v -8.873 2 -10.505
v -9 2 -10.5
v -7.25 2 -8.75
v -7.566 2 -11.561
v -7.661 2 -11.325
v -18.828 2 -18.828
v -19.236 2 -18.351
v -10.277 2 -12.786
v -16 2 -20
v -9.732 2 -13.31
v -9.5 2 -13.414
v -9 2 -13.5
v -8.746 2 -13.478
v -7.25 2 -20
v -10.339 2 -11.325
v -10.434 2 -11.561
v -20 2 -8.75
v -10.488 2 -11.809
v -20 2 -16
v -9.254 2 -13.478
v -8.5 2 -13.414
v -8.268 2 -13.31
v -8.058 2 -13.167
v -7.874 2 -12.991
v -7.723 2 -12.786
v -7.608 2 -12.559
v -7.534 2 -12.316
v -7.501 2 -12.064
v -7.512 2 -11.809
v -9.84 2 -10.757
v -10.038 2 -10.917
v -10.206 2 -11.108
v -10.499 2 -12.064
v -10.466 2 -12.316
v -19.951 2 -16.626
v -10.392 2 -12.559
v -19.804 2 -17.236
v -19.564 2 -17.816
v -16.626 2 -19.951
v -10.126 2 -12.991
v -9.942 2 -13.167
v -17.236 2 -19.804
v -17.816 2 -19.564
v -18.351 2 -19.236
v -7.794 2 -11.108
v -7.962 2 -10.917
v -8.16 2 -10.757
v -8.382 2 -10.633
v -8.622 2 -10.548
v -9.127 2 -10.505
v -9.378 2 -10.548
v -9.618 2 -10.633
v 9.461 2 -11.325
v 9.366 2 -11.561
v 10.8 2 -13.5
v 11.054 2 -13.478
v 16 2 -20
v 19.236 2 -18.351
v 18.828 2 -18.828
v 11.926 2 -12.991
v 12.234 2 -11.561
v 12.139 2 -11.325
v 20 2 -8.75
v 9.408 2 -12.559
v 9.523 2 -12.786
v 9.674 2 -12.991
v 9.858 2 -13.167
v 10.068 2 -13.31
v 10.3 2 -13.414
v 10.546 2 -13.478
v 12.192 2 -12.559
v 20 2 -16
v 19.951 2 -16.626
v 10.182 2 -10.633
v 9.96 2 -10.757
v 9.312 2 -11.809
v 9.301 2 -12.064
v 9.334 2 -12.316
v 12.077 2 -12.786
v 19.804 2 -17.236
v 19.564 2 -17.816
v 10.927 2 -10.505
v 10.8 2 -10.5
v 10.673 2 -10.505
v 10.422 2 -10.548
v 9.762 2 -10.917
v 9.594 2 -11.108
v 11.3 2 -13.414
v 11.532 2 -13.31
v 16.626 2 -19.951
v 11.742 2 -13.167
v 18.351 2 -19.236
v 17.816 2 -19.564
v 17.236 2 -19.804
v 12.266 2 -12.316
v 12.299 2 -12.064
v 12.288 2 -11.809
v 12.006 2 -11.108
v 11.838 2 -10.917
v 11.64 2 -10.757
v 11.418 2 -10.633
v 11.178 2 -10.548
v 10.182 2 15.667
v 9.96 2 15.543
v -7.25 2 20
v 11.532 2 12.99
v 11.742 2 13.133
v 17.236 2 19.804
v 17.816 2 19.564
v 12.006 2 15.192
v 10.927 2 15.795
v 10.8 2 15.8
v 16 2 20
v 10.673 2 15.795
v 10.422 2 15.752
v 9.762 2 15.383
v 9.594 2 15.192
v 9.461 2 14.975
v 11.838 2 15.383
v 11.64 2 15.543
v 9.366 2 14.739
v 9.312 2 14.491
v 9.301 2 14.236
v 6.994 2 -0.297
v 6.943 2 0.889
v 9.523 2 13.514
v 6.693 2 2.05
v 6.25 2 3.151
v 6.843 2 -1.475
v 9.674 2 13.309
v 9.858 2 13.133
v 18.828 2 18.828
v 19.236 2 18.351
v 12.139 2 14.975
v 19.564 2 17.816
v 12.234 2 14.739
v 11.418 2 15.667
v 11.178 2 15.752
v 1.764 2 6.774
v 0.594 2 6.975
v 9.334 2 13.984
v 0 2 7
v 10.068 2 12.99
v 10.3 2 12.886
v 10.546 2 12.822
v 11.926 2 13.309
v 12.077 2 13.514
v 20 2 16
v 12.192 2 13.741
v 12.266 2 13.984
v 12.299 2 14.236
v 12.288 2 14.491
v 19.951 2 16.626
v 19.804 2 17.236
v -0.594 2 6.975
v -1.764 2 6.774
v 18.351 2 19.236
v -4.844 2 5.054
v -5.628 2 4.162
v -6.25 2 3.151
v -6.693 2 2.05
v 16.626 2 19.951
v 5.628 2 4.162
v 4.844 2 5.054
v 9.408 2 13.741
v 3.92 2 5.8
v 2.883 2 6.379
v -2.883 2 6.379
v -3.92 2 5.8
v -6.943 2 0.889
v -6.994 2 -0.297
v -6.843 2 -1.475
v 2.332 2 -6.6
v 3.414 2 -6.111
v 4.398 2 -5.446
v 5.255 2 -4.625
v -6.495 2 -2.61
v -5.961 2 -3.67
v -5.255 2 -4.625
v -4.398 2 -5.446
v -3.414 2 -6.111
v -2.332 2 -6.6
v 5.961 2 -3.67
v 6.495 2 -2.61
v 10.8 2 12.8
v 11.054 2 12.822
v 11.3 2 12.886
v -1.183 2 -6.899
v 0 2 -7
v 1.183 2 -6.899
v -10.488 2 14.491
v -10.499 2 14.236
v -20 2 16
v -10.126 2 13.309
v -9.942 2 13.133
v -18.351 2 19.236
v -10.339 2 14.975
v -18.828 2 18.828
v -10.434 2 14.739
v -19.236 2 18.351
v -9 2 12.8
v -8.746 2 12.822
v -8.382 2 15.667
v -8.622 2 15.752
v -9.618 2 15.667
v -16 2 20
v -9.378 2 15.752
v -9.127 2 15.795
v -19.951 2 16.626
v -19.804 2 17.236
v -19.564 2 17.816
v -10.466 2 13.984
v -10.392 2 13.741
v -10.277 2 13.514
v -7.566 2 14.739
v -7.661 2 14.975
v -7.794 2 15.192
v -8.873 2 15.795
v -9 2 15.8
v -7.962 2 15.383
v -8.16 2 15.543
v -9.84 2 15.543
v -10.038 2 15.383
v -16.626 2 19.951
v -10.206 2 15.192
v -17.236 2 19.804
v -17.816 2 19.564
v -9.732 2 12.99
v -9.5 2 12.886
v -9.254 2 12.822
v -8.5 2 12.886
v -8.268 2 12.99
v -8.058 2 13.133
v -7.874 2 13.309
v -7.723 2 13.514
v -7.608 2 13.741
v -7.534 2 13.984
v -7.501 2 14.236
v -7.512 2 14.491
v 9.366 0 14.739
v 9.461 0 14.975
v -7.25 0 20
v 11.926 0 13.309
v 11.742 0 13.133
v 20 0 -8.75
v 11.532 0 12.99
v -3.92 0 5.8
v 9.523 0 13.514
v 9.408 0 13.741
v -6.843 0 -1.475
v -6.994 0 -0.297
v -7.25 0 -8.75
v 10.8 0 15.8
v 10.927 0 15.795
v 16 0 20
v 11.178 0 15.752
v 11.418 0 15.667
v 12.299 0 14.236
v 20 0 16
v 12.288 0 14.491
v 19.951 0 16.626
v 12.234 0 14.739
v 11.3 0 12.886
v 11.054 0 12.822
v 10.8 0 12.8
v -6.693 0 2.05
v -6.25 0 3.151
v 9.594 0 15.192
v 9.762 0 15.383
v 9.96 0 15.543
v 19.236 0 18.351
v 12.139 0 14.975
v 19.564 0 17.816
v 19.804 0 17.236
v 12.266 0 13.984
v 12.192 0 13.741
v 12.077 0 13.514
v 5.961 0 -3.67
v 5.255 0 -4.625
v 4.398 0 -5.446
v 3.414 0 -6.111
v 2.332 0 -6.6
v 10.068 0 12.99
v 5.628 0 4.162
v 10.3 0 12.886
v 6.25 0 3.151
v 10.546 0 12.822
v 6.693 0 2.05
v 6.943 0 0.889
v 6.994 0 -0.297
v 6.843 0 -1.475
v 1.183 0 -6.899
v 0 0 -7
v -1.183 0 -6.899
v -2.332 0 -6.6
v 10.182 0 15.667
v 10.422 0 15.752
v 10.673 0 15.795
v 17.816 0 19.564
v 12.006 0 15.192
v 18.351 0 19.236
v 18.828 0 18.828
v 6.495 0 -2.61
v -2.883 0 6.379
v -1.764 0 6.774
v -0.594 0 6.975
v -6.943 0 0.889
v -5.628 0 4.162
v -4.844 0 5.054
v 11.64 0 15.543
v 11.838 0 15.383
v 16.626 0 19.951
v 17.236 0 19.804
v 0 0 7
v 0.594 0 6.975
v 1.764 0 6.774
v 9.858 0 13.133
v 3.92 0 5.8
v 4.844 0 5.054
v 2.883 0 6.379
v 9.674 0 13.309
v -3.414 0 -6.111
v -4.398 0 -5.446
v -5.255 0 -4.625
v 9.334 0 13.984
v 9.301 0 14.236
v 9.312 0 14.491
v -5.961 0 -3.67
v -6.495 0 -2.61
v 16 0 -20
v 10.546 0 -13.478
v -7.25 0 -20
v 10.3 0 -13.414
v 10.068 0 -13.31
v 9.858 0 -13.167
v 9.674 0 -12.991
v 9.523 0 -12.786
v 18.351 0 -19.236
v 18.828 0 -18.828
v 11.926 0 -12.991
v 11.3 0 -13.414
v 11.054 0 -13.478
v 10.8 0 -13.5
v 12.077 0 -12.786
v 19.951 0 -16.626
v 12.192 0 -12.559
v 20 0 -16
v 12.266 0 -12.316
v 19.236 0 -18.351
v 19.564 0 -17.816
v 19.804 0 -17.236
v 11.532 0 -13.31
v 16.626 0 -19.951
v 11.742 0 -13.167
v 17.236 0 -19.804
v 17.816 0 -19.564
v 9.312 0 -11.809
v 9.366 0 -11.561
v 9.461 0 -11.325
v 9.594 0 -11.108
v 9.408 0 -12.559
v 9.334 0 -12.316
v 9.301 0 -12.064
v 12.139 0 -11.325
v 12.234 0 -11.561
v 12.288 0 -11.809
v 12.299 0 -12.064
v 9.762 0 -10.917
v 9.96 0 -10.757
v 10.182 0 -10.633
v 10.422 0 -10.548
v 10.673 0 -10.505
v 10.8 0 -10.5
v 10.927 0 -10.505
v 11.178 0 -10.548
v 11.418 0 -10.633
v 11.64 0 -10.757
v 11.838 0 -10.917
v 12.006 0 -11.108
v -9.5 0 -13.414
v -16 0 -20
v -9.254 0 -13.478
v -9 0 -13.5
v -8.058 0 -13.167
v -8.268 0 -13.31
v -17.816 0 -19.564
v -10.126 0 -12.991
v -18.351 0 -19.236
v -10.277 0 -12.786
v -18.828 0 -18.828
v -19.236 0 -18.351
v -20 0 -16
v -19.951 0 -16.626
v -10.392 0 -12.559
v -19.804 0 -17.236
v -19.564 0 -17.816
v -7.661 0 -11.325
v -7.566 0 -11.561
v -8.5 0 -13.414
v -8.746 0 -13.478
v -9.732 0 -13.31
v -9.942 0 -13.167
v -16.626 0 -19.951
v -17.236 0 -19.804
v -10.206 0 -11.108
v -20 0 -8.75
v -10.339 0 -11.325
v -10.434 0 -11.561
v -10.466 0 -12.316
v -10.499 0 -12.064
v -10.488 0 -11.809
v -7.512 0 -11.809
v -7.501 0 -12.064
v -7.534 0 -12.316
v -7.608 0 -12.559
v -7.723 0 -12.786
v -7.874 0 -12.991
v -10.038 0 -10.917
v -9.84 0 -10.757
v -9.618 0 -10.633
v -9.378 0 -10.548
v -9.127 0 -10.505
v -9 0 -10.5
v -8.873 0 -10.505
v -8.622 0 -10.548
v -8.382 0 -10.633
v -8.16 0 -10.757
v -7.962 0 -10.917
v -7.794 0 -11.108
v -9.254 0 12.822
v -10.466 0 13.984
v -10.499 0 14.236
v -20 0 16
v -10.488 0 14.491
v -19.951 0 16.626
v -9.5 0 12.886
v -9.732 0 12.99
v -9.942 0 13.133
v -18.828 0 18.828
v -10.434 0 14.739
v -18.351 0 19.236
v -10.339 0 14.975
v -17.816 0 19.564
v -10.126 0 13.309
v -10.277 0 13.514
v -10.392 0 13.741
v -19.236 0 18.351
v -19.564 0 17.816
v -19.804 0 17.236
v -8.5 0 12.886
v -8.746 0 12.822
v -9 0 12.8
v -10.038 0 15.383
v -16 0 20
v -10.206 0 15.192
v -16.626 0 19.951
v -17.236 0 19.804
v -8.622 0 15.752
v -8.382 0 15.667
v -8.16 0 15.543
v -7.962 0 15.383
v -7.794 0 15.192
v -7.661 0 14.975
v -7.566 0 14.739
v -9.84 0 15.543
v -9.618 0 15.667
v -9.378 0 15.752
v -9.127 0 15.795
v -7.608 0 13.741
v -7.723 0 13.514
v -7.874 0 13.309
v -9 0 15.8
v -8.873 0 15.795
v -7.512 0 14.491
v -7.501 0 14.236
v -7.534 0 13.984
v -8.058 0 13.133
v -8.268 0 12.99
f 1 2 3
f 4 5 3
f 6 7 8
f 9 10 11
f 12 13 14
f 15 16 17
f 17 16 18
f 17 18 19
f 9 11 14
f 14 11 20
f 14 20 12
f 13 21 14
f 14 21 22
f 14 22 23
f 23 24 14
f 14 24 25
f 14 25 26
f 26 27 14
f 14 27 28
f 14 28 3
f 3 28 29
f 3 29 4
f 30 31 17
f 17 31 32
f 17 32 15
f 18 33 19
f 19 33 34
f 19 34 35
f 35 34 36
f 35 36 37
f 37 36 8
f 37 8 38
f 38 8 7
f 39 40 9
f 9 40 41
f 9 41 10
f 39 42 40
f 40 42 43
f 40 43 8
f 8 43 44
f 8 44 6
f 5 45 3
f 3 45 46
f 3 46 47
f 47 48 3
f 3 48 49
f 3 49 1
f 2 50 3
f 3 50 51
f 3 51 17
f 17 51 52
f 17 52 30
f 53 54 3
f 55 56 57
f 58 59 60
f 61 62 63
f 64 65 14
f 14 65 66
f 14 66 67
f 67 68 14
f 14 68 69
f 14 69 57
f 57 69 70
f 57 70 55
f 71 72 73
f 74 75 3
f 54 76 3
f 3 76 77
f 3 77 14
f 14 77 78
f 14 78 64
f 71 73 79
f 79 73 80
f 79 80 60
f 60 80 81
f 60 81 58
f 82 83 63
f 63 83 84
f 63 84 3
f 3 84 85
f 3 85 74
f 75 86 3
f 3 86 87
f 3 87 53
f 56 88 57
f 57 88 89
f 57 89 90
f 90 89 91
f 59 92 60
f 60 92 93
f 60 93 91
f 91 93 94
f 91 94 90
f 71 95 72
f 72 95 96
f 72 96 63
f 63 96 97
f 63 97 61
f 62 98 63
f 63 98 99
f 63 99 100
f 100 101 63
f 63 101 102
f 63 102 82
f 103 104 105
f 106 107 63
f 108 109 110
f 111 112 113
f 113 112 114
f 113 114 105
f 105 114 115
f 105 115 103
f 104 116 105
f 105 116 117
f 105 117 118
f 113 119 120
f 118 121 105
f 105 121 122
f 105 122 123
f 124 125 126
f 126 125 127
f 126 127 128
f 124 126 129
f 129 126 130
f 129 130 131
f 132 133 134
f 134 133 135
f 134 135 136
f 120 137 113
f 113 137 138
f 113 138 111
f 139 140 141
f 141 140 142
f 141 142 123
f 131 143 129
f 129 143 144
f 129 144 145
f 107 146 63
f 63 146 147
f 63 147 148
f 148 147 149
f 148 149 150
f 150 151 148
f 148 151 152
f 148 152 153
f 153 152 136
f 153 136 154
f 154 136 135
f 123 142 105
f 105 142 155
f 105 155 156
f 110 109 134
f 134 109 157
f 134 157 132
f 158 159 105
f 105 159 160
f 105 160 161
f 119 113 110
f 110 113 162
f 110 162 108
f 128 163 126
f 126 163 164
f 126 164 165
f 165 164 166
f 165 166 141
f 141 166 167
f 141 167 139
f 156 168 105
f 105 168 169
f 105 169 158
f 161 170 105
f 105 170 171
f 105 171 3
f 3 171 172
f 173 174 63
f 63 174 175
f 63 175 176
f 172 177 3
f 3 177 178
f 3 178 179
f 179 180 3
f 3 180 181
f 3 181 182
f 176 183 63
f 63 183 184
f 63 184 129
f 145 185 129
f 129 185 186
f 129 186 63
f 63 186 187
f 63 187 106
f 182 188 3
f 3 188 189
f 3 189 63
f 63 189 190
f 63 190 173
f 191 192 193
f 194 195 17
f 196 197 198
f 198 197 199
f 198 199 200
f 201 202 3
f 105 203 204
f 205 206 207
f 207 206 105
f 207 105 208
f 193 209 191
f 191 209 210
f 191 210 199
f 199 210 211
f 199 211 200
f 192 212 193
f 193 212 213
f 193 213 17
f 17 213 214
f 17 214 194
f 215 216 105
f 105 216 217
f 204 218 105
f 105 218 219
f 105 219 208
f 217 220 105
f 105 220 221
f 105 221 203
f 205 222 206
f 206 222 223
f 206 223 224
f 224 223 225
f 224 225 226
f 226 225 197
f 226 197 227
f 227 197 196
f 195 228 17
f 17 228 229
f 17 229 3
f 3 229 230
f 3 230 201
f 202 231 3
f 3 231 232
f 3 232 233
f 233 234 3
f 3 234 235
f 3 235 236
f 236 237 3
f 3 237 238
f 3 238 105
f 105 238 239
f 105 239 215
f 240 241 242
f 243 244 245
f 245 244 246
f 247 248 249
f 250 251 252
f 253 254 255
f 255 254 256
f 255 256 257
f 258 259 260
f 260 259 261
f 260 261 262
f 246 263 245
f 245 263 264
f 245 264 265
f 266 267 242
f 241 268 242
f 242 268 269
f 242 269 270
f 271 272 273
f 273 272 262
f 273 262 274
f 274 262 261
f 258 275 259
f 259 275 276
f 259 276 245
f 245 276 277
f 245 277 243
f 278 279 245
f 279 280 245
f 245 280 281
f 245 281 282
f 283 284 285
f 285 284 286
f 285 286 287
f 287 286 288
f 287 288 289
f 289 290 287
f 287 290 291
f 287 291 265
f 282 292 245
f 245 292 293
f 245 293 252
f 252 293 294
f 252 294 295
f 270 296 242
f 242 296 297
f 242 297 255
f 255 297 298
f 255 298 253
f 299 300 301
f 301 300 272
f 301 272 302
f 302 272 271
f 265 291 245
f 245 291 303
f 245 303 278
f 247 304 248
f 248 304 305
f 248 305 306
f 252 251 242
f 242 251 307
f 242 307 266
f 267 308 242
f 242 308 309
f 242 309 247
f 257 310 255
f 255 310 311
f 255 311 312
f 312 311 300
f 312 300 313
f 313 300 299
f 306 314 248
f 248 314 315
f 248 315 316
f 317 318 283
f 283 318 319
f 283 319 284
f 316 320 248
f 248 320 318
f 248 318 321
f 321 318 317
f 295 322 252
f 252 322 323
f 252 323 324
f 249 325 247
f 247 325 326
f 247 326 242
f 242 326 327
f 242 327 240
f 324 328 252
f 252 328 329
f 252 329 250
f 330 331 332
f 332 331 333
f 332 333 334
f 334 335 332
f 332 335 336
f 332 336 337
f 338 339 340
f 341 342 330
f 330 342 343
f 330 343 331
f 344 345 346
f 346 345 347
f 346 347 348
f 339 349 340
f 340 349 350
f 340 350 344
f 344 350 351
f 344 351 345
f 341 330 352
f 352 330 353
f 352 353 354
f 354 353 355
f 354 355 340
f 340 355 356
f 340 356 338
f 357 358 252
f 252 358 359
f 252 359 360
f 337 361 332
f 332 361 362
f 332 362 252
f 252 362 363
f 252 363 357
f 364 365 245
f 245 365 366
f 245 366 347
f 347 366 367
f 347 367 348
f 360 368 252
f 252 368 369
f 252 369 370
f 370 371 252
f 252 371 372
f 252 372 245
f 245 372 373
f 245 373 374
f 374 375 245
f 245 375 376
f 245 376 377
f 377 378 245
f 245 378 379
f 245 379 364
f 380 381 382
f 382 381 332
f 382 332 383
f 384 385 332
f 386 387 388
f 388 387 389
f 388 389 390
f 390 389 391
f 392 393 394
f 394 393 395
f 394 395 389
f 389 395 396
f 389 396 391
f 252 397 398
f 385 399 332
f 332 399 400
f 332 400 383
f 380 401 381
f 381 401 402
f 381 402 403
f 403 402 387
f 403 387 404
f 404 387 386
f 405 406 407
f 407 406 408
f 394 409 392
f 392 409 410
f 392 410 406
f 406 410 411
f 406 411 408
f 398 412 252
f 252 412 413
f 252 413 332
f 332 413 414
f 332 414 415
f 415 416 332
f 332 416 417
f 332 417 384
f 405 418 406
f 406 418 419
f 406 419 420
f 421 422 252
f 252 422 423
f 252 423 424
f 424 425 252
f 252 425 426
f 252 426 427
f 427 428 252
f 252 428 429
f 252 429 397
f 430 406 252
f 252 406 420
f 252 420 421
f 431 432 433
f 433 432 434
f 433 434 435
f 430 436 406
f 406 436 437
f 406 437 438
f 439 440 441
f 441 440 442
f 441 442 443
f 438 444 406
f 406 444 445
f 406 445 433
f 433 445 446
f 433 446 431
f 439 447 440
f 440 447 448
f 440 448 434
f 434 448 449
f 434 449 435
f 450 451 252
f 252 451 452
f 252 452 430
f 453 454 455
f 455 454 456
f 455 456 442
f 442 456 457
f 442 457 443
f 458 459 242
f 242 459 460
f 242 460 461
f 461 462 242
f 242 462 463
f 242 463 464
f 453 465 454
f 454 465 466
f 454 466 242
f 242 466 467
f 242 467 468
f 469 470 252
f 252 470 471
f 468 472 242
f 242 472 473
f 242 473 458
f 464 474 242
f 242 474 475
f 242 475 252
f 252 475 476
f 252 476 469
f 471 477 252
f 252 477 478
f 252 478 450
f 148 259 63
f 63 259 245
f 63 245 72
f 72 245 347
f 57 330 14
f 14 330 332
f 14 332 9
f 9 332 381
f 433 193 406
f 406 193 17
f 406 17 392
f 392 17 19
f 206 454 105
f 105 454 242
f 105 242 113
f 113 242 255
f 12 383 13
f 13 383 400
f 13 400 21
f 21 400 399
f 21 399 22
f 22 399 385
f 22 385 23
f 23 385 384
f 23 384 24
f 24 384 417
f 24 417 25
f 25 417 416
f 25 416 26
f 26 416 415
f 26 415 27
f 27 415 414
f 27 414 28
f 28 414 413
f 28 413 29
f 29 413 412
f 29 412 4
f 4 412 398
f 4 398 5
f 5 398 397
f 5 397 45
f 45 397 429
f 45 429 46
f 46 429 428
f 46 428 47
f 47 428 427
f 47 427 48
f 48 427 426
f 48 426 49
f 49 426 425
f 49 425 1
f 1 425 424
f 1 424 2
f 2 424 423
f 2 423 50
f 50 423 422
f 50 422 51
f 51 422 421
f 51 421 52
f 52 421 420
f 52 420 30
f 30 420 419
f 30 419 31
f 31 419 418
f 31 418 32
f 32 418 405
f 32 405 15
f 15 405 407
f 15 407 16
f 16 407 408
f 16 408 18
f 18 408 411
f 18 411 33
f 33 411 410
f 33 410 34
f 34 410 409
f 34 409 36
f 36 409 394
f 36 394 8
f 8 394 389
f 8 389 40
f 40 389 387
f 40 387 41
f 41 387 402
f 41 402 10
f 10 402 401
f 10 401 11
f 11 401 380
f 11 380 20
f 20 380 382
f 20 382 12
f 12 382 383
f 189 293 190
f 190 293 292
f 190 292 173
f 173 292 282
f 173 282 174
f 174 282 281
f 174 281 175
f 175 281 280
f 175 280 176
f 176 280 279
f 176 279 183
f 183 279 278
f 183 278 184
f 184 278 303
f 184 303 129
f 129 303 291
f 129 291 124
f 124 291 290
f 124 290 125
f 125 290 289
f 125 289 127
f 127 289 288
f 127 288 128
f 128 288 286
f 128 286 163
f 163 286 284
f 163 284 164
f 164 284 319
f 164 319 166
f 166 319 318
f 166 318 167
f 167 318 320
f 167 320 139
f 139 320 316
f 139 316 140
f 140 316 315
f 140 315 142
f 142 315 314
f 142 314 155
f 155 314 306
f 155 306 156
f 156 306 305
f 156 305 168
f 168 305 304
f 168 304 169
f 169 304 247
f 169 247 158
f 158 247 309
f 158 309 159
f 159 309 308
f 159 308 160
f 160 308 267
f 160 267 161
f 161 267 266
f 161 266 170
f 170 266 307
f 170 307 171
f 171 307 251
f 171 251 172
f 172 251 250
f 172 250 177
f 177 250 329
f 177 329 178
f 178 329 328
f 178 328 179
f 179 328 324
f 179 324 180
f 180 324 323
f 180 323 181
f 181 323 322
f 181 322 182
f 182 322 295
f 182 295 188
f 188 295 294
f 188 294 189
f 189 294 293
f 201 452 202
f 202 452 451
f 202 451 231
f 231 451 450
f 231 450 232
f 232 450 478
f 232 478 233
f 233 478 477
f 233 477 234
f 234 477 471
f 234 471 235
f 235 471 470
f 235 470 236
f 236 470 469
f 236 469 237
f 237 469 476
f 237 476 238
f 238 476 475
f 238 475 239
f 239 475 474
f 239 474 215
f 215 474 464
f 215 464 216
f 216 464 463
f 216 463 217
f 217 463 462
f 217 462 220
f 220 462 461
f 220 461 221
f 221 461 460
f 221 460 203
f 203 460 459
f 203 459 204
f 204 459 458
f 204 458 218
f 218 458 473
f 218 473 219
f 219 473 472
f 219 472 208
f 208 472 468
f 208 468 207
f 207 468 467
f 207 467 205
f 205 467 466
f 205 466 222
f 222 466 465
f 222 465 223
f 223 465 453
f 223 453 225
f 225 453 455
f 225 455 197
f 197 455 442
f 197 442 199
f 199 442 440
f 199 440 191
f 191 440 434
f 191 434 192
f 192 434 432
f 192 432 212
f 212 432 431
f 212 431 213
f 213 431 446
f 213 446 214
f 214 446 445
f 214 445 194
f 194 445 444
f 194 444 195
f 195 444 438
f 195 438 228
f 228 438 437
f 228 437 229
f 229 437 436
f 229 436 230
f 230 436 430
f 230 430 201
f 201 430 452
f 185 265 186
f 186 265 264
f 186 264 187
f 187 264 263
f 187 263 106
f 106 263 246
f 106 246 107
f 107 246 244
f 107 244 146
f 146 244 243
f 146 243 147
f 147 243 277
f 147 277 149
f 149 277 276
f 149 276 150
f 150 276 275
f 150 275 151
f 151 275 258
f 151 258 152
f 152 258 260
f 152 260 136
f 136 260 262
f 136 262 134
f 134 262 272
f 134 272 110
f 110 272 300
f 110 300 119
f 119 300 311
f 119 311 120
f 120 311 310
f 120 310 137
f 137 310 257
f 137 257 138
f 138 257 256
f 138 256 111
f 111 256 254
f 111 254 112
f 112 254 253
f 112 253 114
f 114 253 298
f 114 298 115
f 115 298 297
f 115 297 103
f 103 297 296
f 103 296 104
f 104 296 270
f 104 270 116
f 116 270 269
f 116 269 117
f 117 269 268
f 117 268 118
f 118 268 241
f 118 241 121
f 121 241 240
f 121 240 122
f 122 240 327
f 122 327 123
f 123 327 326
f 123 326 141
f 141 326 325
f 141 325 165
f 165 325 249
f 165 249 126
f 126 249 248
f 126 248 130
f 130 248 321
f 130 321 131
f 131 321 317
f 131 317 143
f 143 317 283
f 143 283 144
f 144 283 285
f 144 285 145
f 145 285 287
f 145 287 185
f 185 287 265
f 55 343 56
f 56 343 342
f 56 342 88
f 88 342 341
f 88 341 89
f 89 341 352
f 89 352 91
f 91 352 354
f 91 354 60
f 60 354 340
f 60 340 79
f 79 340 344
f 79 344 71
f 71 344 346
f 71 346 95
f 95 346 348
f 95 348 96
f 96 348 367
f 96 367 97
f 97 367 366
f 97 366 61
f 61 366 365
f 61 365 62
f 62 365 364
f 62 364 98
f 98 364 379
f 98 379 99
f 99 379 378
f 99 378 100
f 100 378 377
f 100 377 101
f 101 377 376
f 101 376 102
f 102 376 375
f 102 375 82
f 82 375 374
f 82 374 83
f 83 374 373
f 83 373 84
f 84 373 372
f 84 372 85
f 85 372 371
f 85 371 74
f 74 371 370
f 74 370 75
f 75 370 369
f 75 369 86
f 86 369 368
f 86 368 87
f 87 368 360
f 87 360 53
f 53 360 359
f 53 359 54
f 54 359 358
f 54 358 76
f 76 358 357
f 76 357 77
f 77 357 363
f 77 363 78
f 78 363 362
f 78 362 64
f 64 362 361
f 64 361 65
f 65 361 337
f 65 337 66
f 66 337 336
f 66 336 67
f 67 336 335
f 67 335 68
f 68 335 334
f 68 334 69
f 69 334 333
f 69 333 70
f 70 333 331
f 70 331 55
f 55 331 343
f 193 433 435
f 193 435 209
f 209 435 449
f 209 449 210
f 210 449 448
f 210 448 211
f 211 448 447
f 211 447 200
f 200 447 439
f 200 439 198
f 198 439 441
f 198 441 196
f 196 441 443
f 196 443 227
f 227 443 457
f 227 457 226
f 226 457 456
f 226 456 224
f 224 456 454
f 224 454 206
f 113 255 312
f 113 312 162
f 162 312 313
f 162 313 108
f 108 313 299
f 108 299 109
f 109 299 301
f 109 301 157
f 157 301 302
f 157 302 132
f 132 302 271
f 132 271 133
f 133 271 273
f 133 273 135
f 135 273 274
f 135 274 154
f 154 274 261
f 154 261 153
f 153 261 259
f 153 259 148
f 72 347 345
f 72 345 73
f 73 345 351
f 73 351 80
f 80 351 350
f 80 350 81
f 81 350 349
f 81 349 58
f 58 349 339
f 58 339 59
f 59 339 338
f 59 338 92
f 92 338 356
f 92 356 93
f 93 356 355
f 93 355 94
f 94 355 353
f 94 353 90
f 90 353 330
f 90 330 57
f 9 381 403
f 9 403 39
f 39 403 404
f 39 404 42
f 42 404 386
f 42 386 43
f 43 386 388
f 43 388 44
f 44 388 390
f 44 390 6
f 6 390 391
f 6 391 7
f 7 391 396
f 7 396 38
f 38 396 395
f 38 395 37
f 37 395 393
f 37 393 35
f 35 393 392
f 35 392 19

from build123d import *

# Parameters (mm, degrees)
SKETCH2_W           = 40
SKETCH2_H           = 40
SKETCH2_R           = 7
SKETCH2_R_2         = 1.5
BOSS_EXTRUDE1_DEPTH = 2
FILLET1_R           = 4


with BuildPart() as part:
    # Sketch2 → Boss-Extrude1 (new body)
    with BuildSketch(Plane(origin=(0, 0, 0), x_dir=(1, 0, 0), z_dir=(0, 1, 0))):
        Rectangle(SKETCH2_W, SKETCH2_H)
        Circle(SKETCH2_R, mode=Mode.SUBTRACT)
        with Locations((-9, 12)):
            Circle(SKETCH2_R_2, mode=Mode.SUBTRACT)
        with Locations((-9, -14.3)):
            Circle(SKETCH2_R_2, mode=Mode.SUBTRACT)
        with Locations((10.8, -14.3)):
            Circle(SKETCH2_R_2, mode=Mode.SUBTRACT)
        with Locations((10.8, 12)):
            Circle(SKETCH2_R_2, mode=Mode.SUBTRACT)
    extrude(amount=BOSS_EXTRUDE1_DEPTH)

    # Fillet1
    fillet1_edges = [part.edges().sort_by_distance(p)[0] for p in [
        (20, 1, 20),
        (-20, 1, 20),
        (-20, 1, -20),
        (20, 1, -20),
    ]]
    fillet(fillet1_edges, radius=FILLET1_R)


solid = part.part
